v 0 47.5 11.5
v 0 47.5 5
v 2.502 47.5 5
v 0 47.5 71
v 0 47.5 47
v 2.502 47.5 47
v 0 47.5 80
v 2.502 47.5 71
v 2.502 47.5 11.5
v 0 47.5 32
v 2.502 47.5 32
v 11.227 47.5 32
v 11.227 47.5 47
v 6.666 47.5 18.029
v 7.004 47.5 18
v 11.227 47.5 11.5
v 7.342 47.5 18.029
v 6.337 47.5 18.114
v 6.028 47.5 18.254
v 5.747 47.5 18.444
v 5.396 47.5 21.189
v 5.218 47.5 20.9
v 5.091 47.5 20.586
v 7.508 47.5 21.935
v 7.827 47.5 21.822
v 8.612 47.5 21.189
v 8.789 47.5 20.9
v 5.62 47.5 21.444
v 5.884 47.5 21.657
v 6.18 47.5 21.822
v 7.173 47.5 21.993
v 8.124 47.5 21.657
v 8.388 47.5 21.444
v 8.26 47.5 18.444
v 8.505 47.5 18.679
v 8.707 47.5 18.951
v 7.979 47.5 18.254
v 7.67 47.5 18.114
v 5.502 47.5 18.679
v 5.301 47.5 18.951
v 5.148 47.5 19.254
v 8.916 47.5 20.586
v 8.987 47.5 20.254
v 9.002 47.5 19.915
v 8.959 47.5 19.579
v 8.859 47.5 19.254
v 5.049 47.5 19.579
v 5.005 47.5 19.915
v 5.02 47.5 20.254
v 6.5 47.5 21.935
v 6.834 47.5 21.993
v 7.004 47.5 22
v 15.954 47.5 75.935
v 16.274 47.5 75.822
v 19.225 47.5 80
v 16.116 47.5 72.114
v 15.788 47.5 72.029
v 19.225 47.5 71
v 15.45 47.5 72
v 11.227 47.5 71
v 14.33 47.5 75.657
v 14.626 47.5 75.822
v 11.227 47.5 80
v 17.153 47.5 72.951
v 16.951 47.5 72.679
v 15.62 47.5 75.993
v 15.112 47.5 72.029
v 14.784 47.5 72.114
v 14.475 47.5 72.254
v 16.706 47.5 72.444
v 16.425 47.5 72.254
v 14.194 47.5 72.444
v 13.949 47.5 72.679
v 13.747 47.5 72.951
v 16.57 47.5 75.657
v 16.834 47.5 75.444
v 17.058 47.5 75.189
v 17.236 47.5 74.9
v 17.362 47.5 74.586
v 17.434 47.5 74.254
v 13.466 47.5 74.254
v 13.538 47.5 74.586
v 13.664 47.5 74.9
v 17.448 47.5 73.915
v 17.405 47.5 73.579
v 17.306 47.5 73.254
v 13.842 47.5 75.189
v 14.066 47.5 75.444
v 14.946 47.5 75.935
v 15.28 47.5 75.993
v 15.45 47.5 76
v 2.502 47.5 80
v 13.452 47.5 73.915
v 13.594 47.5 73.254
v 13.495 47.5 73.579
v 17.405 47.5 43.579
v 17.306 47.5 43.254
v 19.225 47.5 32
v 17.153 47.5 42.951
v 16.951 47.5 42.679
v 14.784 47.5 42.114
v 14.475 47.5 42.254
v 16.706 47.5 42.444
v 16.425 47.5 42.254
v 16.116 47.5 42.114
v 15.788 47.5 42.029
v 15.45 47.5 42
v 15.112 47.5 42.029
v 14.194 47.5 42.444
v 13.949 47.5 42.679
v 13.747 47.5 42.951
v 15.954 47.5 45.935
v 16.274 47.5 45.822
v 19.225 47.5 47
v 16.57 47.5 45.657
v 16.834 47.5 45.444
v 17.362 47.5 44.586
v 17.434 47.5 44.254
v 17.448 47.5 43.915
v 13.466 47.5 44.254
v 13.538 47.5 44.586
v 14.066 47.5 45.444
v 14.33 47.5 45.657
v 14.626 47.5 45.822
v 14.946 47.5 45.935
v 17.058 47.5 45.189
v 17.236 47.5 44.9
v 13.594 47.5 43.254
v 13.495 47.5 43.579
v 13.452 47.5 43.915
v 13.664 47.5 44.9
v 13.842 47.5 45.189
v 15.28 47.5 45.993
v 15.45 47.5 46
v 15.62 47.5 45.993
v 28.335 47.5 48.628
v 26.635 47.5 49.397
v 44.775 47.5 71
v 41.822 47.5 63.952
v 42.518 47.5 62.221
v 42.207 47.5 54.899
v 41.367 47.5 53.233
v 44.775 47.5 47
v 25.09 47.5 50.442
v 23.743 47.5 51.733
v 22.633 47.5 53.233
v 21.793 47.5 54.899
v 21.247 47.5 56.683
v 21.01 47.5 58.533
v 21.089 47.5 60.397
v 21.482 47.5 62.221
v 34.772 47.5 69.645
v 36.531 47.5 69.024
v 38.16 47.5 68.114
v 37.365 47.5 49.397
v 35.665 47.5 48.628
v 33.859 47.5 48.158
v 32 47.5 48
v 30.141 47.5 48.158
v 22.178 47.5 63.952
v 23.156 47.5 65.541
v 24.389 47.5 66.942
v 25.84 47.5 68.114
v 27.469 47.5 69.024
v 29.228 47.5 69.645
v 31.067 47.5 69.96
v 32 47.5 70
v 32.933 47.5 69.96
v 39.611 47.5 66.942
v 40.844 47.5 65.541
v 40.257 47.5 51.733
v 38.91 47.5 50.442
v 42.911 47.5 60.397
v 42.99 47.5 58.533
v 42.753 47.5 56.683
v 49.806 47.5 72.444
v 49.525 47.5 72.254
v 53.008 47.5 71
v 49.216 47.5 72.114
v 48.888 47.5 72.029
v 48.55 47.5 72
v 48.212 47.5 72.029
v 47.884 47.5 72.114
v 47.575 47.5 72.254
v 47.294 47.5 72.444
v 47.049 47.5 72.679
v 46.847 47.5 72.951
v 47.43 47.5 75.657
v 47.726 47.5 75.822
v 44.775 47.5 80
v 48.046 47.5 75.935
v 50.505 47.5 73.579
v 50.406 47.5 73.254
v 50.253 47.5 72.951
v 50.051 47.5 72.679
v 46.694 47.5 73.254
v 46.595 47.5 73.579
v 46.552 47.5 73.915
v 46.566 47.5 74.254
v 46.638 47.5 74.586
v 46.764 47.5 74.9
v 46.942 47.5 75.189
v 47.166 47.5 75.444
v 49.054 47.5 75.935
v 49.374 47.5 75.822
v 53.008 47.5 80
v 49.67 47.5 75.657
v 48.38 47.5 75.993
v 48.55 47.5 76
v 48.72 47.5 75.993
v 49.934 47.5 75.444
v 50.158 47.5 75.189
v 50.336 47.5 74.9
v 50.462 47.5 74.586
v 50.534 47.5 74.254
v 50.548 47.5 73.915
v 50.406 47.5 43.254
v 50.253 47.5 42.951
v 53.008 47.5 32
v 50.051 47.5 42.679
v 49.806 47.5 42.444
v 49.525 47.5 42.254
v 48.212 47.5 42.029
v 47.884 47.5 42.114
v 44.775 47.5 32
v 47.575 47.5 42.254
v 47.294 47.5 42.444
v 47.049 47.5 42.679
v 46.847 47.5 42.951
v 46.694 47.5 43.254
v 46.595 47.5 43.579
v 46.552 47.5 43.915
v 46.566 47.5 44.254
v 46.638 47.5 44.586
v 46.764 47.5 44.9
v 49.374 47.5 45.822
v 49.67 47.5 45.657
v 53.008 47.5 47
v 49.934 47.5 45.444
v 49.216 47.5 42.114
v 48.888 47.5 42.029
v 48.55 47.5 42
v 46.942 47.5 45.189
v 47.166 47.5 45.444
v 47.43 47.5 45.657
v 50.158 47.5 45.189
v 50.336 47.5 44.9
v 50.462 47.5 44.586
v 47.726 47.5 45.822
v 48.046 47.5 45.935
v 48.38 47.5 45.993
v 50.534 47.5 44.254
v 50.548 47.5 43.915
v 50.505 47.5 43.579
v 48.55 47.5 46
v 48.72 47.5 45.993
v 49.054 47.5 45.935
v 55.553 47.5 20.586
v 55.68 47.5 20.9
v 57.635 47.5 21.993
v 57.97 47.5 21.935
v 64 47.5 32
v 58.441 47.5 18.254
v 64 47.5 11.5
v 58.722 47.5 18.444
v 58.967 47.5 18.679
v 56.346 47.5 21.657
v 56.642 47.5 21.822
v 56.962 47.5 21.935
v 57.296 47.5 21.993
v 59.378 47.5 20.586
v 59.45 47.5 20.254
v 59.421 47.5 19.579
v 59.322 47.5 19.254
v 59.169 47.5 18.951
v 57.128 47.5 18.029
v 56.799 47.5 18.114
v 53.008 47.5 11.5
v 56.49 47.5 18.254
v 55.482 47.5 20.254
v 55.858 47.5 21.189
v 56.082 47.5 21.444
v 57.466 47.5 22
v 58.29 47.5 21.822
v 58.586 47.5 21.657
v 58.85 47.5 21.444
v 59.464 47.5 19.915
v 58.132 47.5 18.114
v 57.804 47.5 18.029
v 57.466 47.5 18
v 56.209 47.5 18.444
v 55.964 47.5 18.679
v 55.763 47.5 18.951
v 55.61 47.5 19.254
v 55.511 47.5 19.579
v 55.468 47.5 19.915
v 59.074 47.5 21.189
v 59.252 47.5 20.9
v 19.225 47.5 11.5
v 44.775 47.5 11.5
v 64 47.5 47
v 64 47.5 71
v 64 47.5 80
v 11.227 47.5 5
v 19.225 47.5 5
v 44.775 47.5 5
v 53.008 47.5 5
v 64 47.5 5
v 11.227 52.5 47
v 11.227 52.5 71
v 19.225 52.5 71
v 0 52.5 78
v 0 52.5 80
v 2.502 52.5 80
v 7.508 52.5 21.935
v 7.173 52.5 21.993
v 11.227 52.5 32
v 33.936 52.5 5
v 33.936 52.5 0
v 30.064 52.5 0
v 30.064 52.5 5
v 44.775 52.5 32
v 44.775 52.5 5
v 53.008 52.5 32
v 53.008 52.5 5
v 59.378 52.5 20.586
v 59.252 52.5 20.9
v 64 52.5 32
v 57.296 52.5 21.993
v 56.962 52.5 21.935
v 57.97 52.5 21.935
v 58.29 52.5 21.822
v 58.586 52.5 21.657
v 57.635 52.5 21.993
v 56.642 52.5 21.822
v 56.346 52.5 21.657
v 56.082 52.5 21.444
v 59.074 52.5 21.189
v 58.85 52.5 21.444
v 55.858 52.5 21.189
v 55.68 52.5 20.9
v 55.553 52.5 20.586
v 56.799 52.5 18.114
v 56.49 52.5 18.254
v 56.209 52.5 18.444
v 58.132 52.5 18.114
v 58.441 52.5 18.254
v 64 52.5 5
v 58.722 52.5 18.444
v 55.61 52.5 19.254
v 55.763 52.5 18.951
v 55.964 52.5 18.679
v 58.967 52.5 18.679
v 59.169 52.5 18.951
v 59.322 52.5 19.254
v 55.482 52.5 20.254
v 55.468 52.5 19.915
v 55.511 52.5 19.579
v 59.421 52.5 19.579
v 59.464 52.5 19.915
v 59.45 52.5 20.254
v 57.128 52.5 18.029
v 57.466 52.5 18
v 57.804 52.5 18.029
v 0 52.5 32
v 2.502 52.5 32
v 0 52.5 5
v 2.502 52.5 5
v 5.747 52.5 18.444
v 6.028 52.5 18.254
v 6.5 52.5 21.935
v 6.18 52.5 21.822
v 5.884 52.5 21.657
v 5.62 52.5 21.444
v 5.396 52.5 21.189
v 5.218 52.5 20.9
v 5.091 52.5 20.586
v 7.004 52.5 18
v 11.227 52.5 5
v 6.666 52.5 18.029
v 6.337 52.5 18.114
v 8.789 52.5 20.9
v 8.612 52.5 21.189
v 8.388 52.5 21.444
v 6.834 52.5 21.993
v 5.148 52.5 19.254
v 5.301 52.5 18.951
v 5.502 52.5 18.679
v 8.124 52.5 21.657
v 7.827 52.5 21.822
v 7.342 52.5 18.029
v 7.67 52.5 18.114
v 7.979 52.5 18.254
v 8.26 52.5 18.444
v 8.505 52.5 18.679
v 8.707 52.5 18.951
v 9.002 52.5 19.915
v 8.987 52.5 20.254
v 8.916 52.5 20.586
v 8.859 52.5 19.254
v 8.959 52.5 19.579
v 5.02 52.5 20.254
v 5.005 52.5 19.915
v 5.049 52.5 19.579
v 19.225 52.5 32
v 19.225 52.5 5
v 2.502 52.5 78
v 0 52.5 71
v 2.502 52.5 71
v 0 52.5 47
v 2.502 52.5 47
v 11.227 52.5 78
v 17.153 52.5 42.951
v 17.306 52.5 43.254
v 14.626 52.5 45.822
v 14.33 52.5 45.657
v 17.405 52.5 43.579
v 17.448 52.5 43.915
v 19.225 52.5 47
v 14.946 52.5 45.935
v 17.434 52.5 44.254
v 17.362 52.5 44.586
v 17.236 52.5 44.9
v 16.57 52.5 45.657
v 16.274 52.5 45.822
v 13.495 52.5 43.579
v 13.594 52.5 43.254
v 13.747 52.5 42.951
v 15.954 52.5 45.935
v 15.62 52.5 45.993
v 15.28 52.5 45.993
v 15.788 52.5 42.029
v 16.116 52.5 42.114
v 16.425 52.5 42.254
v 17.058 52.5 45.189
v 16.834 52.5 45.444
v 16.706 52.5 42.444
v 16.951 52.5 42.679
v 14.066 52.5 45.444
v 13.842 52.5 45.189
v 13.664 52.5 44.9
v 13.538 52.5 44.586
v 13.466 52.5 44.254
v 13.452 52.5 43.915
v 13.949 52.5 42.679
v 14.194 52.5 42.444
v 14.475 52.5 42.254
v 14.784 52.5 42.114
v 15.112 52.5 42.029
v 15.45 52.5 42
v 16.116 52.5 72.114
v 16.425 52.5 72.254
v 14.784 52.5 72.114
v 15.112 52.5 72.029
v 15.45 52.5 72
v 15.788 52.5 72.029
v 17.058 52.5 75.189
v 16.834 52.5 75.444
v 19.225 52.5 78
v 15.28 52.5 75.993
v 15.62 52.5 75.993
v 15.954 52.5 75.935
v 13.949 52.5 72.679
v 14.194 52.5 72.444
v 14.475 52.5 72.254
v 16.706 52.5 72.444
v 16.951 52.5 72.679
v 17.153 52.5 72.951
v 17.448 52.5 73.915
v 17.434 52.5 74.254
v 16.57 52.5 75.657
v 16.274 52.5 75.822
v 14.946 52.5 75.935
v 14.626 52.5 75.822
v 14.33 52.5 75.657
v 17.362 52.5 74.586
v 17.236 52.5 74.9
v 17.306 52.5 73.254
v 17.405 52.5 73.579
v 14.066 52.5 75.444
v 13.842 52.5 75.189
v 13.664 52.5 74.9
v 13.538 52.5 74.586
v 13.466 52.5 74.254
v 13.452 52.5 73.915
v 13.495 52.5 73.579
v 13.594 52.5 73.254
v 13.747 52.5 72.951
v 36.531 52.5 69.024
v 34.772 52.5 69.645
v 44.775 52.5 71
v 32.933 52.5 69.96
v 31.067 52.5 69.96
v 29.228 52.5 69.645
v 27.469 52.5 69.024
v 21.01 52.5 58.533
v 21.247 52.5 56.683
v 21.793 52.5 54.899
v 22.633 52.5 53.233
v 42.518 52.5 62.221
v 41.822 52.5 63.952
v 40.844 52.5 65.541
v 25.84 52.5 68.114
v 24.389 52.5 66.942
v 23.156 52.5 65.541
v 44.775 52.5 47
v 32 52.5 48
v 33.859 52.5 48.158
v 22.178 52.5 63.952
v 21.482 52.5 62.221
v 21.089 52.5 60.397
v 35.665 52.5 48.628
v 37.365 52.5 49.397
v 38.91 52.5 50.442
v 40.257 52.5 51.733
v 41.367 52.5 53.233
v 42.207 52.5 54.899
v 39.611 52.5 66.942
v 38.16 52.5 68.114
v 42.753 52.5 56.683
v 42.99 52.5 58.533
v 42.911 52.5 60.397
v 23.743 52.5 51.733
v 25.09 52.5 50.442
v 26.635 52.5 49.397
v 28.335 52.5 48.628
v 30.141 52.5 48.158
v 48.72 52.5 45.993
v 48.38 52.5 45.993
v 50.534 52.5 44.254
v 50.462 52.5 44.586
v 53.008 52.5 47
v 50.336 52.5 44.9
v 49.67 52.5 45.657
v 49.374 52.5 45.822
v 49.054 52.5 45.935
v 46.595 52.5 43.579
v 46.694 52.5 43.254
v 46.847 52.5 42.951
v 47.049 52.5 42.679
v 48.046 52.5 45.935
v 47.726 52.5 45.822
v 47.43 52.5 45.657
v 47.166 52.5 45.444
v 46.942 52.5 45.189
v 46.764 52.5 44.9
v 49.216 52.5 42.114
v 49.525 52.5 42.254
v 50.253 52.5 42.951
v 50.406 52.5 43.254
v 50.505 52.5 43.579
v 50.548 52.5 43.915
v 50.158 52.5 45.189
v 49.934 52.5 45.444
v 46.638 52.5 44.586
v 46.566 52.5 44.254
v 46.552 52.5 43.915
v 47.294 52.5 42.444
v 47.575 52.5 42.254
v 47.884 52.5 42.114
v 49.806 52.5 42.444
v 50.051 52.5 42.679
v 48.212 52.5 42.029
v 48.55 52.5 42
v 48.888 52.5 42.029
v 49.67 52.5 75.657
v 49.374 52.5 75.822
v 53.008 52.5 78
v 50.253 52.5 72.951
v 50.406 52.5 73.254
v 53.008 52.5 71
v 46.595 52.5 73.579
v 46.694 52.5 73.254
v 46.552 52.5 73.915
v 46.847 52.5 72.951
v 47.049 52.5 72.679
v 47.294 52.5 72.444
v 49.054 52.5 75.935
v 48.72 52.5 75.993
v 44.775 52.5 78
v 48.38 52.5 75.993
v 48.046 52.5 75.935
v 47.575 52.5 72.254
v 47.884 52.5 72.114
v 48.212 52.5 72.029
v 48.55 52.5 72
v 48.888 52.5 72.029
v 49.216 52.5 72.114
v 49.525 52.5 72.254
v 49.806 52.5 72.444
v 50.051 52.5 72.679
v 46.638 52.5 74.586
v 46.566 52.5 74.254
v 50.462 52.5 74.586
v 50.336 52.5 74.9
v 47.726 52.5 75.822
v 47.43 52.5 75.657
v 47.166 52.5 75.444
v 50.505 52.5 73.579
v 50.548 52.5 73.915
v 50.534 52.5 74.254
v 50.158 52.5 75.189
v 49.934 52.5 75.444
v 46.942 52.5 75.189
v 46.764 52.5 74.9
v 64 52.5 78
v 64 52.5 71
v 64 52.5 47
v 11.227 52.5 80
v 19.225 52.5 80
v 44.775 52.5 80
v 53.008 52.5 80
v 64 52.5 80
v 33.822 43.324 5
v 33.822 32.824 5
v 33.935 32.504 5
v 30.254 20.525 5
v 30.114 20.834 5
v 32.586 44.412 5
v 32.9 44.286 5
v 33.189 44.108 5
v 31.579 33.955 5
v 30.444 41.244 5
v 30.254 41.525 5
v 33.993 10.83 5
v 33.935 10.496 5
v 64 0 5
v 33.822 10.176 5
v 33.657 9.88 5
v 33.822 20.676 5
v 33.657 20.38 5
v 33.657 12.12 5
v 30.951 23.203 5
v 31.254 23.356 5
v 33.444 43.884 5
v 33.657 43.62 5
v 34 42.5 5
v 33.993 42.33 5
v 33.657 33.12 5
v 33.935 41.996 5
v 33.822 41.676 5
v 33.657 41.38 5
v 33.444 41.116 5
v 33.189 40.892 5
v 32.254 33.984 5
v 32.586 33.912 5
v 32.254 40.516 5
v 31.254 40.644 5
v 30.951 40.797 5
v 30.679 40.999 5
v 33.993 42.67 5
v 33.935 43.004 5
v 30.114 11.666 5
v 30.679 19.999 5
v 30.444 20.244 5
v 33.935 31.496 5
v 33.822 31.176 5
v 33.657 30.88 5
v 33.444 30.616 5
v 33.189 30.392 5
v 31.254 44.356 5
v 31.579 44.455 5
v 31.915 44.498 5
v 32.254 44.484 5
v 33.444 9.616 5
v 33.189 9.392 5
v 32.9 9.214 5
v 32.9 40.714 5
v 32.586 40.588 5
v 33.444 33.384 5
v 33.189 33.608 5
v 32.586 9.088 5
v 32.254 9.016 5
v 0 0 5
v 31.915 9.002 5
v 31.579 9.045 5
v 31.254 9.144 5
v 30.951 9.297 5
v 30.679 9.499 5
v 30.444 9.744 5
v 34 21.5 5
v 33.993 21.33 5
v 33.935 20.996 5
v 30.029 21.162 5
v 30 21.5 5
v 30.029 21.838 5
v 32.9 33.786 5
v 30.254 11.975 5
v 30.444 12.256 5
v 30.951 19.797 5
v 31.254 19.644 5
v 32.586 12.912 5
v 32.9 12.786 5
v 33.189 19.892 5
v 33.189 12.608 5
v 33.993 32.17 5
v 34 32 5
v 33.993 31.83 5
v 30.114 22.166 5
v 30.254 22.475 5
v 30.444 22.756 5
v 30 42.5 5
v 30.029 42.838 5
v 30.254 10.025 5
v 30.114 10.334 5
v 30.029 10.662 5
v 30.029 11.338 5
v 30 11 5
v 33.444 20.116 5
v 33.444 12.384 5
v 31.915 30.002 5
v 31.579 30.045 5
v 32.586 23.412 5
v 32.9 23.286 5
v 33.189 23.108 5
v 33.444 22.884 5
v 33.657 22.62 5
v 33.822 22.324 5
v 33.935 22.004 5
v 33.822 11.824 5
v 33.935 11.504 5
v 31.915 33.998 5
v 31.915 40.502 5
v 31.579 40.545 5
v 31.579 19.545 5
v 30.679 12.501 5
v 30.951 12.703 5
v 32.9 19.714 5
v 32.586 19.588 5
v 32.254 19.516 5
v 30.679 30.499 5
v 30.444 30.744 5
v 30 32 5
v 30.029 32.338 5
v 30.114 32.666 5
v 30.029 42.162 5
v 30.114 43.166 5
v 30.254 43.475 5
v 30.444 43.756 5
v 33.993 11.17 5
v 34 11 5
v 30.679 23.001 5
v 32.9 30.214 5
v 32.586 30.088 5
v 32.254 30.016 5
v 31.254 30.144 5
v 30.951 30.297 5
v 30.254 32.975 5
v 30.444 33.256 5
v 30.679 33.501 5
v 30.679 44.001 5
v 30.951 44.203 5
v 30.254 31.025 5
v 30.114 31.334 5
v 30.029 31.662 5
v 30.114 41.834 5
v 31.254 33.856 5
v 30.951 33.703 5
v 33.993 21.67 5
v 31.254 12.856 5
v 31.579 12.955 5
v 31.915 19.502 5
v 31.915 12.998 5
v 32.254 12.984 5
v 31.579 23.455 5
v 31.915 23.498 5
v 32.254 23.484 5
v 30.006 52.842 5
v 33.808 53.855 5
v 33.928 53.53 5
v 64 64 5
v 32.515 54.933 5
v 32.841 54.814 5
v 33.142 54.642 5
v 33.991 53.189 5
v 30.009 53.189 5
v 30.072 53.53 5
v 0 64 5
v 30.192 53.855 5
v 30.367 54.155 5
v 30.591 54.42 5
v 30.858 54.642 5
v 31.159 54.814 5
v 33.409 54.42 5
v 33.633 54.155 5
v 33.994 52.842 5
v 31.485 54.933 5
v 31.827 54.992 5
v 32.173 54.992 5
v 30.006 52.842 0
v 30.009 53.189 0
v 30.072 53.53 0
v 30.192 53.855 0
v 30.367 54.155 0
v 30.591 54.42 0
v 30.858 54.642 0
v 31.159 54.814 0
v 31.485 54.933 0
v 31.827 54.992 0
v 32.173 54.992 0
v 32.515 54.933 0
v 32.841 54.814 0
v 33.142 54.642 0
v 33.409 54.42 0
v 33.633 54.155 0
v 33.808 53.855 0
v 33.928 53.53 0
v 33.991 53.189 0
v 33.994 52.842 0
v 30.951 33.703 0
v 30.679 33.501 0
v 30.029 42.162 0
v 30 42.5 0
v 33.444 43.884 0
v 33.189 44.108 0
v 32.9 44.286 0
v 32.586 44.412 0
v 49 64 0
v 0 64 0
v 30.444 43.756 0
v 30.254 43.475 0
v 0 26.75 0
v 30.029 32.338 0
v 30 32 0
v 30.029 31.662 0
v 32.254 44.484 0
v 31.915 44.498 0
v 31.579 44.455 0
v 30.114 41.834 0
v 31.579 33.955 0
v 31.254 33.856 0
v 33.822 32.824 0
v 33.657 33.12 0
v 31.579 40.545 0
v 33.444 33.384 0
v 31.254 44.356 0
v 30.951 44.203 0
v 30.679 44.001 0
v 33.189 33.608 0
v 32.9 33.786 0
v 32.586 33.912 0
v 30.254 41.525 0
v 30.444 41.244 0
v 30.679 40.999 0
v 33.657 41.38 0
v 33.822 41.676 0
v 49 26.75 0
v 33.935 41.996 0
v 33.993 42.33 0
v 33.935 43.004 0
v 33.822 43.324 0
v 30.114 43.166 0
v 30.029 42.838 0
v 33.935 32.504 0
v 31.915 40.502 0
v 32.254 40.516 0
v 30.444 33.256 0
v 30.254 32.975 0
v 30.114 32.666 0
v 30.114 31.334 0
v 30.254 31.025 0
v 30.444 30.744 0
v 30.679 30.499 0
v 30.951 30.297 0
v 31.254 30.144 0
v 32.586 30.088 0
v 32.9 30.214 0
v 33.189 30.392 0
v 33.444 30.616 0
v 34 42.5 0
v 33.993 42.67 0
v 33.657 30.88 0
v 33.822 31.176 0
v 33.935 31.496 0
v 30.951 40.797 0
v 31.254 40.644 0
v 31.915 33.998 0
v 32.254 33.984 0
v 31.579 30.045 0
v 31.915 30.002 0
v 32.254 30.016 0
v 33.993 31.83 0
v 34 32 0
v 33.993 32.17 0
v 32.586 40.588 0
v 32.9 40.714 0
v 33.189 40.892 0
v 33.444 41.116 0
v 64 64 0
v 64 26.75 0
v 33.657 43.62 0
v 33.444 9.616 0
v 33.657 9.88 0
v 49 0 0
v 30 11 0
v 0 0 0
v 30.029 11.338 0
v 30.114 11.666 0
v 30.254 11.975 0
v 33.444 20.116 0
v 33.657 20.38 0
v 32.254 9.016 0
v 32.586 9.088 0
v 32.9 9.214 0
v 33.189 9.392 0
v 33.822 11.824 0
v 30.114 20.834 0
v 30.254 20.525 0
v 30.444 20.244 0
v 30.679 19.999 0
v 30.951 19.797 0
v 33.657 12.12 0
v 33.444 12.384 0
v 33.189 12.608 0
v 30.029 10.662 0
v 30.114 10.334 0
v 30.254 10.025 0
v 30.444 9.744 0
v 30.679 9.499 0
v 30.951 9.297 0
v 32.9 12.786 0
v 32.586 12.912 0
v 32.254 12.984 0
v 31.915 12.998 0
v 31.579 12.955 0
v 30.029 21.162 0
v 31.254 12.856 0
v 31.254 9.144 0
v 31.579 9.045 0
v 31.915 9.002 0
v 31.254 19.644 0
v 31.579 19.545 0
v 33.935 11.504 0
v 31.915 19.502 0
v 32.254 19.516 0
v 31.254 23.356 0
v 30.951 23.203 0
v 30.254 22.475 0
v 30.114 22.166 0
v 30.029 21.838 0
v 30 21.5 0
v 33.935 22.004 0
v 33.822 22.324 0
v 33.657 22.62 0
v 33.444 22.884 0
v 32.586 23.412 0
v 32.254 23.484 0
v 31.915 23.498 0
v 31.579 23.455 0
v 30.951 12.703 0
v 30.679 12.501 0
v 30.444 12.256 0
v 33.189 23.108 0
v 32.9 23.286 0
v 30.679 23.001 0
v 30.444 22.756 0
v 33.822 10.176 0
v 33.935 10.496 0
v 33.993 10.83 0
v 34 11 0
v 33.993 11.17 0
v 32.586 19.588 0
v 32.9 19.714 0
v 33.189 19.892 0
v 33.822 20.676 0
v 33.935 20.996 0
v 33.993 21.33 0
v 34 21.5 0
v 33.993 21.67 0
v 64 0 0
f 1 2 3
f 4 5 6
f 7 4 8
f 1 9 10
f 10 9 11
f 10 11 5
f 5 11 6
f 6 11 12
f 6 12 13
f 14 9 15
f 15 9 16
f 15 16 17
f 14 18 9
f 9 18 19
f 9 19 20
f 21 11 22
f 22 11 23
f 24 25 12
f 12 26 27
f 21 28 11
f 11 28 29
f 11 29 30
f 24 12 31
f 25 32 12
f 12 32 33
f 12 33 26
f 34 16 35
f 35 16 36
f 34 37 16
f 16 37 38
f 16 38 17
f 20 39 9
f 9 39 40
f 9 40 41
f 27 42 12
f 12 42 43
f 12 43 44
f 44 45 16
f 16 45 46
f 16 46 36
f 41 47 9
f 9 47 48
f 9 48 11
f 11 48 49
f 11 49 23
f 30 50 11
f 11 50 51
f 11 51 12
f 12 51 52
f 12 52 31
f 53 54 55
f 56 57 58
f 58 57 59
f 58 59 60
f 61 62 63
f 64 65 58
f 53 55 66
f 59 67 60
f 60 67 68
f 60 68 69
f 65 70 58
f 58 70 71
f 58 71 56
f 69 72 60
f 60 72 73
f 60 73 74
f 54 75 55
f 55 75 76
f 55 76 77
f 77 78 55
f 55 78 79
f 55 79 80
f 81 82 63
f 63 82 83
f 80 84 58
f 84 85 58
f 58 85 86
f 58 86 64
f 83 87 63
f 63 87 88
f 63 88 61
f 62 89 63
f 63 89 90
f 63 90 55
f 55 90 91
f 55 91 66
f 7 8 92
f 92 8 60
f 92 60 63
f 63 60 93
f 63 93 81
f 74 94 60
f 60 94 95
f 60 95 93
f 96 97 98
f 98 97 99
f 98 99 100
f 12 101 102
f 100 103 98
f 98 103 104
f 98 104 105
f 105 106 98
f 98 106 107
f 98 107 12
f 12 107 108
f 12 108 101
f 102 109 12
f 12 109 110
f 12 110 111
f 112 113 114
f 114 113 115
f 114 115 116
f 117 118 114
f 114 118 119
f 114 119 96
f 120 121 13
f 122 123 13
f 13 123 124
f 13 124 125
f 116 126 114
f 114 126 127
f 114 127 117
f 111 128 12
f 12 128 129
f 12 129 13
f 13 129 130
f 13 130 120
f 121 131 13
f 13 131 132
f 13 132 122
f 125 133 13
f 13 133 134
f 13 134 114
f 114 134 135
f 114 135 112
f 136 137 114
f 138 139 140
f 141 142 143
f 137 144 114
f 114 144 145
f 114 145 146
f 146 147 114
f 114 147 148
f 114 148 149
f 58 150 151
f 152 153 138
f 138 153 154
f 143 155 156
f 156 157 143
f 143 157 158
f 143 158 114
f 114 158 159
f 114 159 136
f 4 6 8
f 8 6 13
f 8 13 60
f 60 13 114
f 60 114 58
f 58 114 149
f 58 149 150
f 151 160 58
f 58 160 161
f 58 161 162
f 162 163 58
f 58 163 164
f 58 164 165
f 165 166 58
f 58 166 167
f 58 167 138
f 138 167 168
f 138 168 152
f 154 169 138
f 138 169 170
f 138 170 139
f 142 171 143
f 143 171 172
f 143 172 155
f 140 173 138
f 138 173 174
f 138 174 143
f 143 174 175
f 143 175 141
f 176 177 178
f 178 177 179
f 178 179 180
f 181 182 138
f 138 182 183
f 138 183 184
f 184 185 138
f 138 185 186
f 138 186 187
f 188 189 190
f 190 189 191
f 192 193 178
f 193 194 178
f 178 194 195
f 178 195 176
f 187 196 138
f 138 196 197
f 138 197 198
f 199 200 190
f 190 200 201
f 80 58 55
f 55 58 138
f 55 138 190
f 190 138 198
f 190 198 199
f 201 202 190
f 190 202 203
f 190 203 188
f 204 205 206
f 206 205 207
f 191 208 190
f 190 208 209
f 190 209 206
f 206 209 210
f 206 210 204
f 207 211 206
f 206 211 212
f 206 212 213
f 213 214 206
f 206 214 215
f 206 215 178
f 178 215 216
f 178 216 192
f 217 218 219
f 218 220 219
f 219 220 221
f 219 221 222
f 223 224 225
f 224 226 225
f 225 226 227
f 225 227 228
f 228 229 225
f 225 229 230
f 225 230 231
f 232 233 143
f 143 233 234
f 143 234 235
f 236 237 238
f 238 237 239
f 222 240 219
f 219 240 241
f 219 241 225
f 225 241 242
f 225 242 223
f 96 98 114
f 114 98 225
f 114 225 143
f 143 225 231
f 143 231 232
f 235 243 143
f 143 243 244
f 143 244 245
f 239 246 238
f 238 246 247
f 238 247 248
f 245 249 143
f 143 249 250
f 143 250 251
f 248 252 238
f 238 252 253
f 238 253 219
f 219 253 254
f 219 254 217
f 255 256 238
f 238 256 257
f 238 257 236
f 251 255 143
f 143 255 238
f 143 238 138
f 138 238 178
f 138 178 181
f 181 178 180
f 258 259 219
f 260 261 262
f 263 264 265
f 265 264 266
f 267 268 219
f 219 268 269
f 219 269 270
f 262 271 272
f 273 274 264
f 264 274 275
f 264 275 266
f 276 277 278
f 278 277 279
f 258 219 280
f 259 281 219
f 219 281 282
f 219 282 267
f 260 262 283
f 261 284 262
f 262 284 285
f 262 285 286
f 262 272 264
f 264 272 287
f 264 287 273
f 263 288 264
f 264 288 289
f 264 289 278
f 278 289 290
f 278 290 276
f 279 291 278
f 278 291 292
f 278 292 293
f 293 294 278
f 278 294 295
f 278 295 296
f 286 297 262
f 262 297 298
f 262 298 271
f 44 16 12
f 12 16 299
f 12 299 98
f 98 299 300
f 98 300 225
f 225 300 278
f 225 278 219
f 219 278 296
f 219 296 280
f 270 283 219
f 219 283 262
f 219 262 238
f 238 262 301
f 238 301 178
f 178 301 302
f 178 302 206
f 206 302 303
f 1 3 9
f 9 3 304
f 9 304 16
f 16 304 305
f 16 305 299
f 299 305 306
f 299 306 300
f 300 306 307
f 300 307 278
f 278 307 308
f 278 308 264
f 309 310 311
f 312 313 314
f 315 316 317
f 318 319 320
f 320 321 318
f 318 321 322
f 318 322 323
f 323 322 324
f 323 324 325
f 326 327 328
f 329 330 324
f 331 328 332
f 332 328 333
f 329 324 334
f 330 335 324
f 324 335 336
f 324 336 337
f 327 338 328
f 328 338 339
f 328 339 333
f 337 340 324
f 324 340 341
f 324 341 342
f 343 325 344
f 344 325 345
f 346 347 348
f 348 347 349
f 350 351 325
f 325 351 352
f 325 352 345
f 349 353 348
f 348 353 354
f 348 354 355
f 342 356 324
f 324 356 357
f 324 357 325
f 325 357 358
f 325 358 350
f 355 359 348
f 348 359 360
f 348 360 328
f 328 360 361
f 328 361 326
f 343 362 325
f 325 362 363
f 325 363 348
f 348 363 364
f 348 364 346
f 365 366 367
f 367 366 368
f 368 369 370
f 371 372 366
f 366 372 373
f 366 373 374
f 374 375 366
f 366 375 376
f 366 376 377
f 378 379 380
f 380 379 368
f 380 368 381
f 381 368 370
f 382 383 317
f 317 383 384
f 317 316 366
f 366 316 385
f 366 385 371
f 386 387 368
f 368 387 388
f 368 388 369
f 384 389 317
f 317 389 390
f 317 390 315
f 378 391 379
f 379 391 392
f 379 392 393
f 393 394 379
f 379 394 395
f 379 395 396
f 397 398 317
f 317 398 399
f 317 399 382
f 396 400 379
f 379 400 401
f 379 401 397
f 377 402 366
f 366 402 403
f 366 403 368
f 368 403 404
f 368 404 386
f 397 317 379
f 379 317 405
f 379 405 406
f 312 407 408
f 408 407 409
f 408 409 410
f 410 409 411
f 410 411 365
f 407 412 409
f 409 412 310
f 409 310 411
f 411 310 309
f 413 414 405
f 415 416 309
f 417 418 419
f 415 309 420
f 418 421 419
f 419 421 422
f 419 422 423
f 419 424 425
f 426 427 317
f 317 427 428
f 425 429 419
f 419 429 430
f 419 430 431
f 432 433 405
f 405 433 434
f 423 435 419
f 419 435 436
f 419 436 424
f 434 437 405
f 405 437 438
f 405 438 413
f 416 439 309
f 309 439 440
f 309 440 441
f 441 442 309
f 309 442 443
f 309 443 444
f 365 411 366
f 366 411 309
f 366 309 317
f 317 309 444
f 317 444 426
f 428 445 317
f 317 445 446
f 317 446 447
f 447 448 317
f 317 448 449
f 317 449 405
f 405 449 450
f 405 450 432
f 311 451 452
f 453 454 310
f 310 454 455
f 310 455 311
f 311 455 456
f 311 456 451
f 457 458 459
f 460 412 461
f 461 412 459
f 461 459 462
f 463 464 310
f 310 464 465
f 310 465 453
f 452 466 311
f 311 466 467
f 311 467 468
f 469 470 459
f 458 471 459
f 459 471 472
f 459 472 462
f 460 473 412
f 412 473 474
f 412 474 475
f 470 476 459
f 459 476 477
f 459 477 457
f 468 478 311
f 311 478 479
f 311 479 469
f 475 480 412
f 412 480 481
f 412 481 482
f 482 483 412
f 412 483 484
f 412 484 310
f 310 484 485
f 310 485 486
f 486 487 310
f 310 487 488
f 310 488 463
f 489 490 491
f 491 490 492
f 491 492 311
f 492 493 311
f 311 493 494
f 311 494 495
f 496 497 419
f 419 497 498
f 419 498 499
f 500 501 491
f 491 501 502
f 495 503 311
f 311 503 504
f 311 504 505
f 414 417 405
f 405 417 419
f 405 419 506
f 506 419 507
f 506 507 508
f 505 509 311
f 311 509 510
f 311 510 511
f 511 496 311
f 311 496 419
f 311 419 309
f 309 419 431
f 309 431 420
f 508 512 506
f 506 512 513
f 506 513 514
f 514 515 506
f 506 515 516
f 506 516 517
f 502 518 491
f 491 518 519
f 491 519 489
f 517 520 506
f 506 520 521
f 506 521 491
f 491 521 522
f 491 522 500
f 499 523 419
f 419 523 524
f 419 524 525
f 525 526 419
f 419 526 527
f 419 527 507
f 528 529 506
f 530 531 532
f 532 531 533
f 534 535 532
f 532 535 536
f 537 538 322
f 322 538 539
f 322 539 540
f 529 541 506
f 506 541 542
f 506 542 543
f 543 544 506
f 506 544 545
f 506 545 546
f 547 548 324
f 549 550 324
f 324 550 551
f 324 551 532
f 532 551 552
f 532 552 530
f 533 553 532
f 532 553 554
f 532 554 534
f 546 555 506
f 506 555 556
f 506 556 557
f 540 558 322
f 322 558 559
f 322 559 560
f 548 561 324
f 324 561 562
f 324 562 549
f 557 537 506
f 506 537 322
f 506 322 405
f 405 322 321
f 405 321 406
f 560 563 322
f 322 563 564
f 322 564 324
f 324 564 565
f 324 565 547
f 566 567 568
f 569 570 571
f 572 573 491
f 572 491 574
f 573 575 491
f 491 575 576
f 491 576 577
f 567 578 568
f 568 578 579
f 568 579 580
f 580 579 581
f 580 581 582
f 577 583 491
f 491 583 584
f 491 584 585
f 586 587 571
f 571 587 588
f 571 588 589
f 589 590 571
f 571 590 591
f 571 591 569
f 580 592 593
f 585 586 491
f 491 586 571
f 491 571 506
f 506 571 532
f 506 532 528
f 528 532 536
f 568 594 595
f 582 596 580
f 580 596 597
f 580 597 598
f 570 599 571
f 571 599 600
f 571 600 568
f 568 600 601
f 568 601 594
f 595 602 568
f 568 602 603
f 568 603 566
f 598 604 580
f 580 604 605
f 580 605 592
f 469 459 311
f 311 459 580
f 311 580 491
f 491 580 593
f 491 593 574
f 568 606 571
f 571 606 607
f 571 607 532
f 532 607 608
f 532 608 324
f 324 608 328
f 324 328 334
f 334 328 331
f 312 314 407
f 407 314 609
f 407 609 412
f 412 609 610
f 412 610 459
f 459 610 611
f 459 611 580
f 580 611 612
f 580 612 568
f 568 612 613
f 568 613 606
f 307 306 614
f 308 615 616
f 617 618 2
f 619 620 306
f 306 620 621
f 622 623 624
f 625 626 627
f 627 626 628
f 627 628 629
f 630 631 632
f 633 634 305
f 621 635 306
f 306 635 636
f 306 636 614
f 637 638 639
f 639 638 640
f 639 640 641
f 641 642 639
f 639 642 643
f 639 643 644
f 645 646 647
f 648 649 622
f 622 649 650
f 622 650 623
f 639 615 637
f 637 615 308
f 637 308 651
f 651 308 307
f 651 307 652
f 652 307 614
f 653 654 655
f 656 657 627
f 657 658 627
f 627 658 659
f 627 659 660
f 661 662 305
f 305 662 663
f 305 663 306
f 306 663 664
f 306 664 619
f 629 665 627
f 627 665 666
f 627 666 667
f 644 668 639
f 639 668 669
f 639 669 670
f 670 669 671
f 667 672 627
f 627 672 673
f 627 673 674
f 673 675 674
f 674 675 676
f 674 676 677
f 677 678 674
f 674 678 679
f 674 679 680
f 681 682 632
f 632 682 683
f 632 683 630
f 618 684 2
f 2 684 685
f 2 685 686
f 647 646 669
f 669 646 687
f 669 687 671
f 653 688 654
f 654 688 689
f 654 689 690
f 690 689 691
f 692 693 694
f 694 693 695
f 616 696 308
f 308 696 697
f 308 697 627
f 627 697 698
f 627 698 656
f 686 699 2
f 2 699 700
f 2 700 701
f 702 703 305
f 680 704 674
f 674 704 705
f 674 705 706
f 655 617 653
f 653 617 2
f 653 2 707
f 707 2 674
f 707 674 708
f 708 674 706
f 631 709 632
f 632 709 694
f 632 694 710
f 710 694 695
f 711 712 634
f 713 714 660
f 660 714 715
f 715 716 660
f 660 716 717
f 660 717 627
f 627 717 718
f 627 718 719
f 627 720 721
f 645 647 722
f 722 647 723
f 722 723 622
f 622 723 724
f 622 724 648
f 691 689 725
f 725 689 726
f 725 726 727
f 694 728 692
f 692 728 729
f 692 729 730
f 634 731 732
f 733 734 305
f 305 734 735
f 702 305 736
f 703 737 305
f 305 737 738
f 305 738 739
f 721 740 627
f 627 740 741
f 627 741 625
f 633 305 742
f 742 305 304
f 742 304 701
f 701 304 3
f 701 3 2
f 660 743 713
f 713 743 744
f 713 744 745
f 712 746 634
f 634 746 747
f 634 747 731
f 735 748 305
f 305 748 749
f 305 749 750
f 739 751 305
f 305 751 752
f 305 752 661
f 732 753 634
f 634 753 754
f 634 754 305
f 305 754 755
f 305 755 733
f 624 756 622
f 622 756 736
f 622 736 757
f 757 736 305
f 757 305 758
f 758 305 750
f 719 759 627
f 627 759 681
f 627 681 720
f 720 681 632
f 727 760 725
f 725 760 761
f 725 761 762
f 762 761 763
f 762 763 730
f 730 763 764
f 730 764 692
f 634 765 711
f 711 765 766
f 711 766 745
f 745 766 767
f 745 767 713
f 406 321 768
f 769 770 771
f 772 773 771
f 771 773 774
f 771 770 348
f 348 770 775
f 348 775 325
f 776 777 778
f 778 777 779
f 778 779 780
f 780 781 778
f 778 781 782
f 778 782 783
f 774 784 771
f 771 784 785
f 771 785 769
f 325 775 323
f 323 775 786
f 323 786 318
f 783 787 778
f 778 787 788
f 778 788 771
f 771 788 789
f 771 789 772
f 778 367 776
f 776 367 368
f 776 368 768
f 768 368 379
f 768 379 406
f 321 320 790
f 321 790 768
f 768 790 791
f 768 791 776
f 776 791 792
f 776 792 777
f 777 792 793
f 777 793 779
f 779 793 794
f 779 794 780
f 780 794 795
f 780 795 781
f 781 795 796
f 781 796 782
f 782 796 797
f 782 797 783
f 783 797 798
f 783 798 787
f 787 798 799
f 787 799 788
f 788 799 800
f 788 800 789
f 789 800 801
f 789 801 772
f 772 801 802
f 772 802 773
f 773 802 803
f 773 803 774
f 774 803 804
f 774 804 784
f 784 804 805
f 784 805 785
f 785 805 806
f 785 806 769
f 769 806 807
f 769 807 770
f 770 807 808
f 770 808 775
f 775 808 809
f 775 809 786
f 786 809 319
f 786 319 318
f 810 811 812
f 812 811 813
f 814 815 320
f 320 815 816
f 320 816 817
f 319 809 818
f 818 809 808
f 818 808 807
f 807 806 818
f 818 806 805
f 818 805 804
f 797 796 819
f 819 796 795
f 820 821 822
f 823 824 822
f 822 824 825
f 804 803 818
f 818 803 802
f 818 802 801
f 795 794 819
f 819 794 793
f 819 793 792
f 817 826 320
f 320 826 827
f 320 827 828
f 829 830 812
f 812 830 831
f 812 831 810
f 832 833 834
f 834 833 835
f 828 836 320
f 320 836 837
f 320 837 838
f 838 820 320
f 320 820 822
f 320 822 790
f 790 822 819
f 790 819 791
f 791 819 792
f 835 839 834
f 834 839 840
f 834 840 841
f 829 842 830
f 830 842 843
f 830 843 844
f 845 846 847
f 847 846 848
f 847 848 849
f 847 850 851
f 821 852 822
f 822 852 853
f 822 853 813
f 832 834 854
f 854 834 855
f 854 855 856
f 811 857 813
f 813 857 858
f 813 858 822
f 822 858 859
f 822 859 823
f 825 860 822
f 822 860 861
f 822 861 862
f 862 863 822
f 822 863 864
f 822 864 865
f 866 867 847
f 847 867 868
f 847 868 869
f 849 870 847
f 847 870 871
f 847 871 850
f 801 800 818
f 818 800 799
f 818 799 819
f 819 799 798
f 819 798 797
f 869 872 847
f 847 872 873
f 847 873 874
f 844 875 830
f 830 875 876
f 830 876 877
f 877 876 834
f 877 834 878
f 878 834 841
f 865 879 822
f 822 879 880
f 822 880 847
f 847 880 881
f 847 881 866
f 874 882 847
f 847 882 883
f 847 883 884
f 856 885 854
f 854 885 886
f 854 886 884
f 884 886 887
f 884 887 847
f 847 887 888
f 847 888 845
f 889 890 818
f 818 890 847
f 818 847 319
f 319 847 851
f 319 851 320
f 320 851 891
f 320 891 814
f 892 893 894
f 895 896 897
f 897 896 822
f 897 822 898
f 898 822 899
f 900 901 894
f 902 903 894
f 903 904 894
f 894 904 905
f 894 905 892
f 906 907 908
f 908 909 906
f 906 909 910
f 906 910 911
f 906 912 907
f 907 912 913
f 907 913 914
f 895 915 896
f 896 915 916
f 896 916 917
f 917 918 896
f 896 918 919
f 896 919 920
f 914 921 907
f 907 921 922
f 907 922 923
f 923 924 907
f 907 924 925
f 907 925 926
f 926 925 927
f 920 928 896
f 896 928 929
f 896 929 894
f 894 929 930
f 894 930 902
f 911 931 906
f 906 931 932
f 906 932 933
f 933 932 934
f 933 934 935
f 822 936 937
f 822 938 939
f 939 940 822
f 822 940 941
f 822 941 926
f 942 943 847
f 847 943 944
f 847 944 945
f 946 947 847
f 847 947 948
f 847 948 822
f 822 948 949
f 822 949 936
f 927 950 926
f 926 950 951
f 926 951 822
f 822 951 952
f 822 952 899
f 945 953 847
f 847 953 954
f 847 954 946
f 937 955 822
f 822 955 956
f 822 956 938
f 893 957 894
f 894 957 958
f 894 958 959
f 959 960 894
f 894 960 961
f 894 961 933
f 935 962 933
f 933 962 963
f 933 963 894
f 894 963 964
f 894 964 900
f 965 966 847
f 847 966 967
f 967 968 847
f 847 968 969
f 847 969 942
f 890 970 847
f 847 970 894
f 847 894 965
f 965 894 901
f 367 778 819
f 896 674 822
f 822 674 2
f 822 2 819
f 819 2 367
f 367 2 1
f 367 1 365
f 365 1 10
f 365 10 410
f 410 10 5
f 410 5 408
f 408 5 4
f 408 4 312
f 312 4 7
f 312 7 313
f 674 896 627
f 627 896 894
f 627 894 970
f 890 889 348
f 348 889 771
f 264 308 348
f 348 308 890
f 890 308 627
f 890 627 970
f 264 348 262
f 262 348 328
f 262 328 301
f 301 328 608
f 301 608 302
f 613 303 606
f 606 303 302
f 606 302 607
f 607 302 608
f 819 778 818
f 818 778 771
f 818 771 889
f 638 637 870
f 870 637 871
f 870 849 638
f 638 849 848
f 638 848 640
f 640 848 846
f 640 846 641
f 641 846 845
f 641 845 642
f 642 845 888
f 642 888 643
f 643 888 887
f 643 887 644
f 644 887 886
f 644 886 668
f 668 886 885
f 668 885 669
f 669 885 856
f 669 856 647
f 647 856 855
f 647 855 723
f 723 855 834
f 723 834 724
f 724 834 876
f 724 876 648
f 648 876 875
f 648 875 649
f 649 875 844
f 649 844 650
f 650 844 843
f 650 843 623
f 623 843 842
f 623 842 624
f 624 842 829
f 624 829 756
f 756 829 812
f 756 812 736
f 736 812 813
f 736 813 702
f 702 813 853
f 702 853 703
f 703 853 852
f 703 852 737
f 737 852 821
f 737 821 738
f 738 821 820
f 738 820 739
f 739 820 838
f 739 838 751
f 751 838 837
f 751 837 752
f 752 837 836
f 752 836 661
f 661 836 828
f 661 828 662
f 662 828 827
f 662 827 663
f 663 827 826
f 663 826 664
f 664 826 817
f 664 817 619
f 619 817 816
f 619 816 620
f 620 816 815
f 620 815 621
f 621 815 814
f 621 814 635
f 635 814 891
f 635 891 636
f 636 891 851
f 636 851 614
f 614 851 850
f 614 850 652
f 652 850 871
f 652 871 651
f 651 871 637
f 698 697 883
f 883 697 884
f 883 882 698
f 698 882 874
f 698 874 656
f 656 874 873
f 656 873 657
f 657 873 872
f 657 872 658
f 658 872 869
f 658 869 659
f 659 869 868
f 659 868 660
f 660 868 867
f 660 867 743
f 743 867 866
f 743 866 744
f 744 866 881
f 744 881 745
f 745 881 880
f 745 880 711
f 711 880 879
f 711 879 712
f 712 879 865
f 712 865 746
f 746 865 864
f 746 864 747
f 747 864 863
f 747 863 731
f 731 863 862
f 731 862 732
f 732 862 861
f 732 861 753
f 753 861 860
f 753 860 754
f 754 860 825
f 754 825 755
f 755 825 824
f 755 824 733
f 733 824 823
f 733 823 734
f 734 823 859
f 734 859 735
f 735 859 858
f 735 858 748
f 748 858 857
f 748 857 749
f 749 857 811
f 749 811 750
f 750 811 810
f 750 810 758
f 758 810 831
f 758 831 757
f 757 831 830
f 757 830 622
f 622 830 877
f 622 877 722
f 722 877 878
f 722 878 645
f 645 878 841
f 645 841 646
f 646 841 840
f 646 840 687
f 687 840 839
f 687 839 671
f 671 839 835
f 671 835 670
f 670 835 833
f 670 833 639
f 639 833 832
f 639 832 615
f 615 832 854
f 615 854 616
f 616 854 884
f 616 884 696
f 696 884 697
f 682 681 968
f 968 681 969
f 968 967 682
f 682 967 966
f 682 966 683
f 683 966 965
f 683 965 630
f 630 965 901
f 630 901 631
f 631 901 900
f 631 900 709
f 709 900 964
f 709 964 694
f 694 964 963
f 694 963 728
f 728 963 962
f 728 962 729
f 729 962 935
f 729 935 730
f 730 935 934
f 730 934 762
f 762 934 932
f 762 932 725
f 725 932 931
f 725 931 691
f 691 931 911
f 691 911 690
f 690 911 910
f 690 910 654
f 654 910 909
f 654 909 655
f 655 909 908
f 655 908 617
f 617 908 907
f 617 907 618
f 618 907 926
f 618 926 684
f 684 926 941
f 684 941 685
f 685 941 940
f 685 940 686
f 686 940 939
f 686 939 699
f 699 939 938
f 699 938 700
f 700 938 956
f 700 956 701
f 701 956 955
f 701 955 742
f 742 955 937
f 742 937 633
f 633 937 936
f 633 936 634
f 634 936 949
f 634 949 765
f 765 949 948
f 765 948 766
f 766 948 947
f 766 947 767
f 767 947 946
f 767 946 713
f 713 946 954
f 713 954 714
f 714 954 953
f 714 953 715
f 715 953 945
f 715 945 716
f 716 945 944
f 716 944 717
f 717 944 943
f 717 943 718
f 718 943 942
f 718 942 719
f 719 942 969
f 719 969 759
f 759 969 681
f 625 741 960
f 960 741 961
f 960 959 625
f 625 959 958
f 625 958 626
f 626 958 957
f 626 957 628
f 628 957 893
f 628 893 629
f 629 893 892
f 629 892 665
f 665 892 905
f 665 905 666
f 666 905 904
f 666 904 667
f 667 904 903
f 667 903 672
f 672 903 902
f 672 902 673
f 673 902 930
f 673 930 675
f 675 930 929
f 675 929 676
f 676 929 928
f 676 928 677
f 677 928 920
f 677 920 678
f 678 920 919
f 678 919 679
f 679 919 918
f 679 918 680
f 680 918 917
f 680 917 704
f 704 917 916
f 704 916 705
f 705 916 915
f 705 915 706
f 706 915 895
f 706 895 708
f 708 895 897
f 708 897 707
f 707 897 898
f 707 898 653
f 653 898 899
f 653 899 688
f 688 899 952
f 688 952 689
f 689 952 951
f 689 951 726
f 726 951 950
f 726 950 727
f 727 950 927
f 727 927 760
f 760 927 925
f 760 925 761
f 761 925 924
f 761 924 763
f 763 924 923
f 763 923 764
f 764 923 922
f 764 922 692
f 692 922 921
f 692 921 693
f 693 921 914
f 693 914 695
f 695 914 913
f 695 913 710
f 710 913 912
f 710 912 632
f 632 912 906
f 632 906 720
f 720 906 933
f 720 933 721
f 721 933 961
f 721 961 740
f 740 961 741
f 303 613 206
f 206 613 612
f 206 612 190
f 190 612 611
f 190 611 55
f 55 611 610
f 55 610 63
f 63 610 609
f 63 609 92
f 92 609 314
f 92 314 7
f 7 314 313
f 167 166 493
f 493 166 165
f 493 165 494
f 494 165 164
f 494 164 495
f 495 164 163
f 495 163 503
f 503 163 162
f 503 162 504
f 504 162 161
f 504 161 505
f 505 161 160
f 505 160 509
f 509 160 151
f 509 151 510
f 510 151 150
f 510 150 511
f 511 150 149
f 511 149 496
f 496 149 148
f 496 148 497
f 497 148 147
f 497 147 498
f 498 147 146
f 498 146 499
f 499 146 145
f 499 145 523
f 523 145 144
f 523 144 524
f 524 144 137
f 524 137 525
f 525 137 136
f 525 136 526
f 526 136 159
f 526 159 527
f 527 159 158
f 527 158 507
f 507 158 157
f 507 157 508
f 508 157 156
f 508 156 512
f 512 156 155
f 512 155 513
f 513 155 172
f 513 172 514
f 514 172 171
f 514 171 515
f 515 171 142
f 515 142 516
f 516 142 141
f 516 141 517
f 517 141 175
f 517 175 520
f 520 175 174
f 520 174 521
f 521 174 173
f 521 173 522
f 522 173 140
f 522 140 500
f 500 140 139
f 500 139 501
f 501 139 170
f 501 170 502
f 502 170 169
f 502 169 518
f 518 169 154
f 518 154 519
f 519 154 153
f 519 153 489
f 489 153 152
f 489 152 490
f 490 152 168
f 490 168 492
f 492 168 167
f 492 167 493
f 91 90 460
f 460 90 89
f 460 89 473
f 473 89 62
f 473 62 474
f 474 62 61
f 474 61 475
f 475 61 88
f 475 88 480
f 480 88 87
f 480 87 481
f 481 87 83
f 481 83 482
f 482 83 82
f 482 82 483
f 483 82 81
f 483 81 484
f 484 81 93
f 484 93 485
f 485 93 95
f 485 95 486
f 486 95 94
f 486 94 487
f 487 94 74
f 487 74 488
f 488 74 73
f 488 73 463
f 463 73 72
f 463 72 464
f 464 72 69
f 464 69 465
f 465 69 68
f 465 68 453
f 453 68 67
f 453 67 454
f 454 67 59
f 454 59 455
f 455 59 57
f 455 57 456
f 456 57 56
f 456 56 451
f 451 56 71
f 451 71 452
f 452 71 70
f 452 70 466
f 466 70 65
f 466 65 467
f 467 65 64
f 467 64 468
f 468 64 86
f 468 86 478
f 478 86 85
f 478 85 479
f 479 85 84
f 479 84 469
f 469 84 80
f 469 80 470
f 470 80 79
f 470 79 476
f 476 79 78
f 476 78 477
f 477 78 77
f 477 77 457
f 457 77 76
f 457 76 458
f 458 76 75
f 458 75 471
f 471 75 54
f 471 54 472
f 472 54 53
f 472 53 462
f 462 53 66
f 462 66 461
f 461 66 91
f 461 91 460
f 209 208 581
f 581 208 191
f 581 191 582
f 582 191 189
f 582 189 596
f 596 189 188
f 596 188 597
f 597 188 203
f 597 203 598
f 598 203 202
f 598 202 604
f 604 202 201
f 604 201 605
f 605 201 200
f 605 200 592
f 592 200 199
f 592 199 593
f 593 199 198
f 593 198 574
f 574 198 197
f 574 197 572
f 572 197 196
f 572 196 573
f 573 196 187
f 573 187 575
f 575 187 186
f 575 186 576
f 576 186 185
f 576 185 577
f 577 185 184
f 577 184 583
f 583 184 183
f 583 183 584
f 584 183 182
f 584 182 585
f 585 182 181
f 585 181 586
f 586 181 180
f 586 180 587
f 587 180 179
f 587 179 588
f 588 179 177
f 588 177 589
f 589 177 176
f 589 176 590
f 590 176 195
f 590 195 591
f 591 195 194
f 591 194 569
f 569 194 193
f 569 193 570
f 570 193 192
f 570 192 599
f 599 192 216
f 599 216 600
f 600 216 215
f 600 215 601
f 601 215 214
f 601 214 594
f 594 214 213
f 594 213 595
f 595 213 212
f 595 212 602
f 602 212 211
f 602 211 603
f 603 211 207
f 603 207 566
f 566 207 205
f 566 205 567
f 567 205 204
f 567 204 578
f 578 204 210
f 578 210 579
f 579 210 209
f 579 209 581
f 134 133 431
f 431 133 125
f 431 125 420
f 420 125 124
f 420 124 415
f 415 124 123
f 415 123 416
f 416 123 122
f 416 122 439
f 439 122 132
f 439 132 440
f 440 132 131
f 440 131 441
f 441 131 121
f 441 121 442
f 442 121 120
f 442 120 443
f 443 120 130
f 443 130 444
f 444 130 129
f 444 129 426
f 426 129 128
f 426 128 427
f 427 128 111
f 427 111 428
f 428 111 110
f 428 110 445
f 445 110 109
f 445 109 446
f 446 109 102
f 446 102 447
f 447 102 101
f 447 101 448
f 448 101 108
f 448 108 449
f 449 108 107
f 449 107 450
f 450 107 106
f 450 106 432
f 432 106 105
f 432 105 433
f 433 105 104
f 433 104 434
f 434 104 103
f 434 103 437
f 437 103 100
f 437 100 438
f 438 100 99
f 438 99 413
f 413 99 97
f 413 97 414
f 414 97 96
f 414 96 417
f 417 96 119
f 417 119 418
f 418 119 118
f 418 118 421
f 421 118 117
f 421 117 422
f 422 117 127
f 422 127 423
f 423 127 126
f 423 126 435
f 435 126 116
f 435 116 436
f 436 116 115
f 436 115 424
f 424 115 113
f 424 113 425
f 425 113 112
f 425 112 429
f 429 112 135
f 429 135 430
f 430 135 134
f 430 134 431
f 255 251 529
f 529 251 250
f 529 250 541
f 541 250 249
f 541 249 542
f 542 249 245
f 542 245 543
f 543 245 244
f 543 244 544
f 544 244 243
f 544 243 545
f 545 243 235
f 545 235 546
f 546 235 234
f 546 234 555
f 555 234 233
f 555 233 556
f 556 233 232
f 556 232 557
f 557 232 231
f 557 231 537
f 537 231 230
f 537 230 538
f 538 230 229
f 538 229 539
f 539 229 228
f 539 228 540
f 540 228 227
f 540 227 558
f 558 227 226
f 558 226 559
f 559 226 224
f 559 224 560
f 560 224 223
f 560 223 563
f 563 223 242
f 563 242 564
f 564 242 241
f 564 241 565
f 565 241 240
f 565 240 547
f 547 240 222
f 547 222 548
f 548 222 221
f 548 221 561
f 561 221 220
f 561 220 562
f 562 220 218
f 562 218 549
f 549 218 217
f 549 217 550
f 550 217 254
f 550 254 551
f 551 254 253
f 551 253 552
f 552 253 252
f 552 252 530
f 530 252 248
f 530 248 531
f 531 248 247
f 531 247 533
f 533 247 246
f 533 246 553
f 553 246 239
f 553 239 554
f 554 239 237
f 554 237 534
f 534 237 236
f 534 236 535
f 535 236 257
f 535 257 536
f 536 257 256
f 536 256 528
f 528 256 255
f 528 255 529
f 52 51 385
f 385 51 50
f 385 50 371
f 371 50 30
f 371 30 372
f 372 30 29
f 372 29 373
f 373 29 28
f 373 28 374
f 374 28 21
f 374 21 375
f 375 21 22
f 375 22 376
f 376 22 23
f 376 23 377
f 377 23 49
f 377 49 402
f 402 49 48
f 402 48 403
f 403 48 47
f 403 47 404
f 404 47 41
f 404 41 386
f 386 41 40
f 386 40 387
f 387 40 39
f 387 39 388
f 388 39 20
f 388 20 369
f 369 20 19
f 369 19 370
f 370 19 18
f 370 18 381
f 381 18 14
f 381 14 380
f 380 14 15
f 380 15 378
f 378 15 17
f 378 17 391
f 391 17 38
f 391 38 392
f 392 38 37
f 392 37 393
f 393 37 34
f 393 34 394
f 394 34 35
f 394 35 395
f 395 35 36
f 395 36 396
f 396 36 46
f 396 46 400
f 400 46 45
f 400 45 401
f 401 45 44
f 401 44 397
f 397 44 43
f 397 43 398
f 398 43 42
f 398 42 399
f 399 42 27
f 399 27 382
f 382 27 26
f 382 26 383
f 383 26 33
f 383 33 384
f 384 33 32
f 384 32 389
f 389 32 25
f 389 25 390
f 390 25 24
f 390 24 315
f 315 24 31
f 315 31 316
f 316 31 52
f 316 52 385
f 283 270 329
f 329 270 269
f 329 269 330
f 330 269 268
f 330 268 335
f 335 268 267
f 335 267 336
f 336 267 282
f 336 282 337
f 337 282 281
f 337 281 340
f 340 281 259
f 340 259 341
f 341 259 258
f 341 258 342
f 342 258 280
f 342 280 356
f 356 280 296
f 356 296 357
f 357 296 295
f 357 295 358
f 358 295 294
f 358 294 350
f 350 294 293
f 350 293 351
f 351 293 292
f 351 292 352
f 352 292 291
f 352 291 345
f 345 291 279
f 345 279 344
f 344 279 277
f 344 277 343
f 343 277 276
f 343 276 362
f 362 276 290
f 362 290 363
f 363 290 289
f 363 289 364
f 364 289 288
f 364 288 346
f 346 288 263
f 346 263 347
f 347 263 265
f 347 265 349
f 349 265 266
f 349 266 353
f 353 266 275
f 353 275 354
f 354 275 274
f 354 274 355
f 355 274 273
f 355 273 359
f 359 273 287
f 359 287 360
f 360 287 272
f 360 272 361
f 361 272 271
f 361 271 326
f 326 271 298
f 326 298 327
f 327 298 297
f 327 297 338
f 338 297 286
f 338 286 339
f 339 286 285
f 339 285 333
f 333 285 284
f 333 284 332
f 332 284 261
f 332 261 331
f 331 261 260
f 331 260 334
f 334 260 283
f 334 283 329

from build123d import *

# Parameters (mm, degrees)
ESBO_O1_W                = 64
ESBO_O1_H                = 64
ESBO_O1_R                = 2
RESSALTO_EXTRUS_O1_DEPTH = 5
ESBO_O2_W                = 64
ESBO_O2_H                = 5
RESSALTO_EXTRUS_O3_DEPTH = 80
ESBO_O3_R                = 11
ESBO_O3_R_2              = 2
CORTE_EXTRUS_O1_DEPTH    = 114


with BuildPart() as part:
    # Esboço1 → Ressalto-extrusão1 (new body)
    with BuildSketch(Plane.XY):
        with Locations((32, 32)):
            Rectangle(ESBO_O1_W, ESBO_O1_H)
        with Locations((32, 42.5)):
            Circle(ESBO_O1_R, mode=Mode.SUBTRACT)
        with Locations((32, 32)):
            Circle(ESBO_O1_R, mode=Mode.SUBTRACT)
        with Locations((32, 21.5)):
            Circle(ESBO_O1_R, mode=Mode.SUBTRACT)
        with Locations((32, 53)):
            Circle(ESBO_O1_R, mode=Mode.SUBTRACT)
        with Locations((32, 11)):
            Circle(ESBO_O1_R, mode=Mode.SUBTRACT)
    extrude(amount=RESSALTO_EXTRUS_O1_DEPTH)

    # Esboço2 → Ressalto-extrusão3 (add)
    with BuildSketch(Plane.XY):
        with Locations((32, 50)):
            Rectangle(ESBO_O2_W, ESBO_O2_H)
    extrude(amount=RESSALTO_EXTRUS_O3_DEPTH)

    # Esboço3 → Corte-extrusão1 (cut)
    with BuildSketch(Plane(origin=(0, 0, 0), x_dir=(1, 0, 0), z_dir=(0, 1, 0))):
        with Locations((32, -59)):
            Circle(ESBO_O3_R)
        with Locations((15.45, -74)):
            Circle(ESBO_O3_R_2)
        with Locations((48.55, -74)):
            Circle(ESBO_O3_R_2)
        with Locations((15.45, -44)):
            Circle(ESBO_O3_R_2)
        with Locations((48.55, -44)):
            Circle(ESBO_O3_R_2)
        with Locations((7.003644385, -20)):
            Circle(ESBO_O3_R_2)
        with Locations((57.465770744, -20)):
            Circle(ESBO_O3_R_2)
    extrude(amount=CORTE_EXTRUS_O1_DEPTH, mode=Mode.SUBTRACT)


solid = part.part
